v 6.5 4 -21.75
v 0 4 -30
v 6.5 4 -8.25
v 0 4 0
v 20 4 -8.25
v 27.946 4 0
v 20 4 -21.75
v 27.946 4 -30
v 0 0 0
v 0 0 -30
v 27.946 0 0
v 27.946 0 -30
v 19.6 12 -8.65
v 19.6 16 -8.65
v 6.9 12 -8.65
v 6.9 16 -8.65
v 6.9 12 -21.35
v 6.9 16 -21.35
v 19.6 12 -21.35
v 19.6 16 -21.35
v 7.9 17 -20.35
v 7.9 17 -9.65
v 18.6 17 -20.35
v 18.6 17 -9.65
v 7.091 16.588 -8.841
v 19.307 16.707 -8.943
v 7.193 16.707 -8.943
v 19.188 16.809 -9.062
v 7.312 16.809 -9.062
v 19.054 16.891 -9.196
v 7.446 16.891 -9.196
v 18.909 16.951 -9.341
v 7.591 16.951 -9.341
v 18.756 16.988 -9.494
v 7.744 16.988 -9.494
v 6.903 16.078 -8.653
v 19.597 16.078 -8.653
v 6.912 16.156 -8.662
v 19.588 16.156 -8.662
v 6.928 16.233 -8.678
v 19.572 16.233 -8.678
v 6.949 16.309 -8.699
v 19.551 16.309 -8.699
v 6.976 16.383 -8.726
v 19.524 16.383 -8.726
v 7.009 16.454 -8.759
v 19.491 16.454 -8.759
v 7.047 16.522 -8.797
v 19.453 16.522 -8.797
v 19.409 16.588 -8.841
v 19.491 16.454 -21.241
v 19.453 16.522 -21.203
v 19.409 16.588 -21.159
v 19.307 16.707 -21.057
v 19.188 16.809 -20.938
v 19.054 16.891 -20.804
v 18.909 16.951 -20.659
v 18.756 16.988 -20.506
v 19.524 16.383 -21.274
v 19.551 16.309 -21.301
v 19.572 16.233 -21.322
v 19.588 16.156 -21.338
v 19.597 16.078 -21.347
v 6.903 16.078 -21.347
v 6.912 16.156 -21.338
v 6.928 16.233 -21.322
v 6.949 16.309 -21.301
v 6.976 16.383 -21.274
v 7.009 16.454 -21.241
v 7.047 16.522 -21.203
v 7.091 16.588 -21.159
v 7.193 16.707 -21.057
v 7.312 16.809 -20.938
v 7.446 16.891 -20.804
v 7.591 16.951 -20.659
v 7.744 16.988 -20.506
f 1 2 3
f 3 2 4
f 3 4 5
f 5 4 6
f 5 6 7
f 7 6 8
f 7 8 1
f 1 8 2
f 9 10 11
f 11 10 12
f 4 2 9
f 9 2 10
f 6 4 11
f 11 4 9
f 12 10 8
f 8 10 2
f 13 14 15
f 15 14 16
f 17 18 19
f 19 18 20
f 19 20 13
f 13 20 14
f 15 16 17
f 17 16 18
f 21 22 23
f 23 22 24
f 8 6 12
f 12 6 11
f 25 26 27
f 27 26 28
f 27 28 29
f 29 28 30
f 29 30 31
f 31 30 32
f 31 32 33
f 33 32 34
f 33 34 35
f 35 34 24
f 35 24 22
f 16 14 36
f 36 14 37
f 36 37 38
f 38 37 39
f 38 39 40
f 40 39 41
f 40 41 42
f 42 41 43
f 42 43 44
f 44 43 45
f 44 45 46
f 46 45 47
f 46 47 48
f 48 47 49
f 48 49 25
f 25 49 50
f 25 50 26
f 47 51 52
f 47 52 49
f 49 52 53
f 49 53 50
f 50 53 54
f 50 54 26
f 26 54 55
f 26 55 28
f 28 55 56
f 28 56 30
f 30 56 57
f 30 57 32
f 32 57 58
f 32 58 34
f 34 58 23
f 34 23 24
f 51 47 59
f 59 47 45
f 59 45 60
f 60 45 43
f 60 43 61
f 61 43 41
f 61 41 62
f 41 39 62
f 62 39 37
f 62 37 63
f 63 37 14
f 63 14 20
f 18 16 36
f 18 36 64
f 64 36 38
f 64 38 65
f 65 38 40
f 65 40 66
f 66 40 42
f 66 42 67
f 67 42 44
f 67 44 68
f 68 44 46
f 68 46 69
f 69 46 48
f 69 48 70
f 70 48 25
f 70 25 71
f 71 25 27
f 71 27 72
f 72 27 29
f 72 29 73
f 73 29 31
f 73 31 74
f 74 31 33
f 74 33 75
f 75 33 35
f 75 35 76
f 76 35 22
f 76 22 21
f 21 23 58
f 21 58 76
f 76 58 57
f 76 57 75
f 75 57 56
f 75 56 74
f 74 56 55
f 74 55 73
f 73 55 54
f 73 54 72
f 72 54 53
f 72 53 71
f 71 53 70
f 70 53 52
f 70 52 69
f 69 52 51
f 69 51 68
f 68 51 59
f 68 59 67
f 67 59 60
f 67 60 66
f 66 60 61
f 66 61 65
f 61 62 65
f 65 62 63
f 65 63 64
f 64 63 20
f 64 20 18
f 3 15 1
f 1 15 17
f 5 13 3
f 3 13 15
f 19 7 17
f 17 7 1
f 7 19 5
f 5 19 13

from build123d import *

# Parameters (mm, degrees)
SKETCH1_W                = 240
SKETCH1_H                = 30
SKETCH1_W_2              = 12.7
SKETCH1_H_2              = 12.7
BOSS_EXTRUDE1_DEPTH      = 4
SKETCH2_W                = 12.7
SKETCH2_H                = 12.7
BOSS_EXTRUDE2_DEPTH      = 13
BOSS_EXTRUDE2_DEPTH_BACK = 4
SKETCH3_W                = 217.126937851
SKETCH3_H                = 95.437848018
CUT_EXTRUDE1_DEPTH       = 14
CUT_EXTRUDE1_DEPTH_BACK  = 5
FILLET1_R                = 1
CHAMFER1_SIZE            = 0.4
CHAMFER1_SIZE2           = 8


with BuildPart() as part:
    # Sketch1 → Boss-Extrude1 (new body)
    with BuildSketch(Plane(origin=(0, 0, 0), x_dir=(1, 0, 0), z_dir=(0, 1, 0))):
        with Locations((120, 15)):
            Rectangle(SKETCH1_W, SKETCH1_H)
        with Locations((13.25, 15)):
            Rectangle(SKETCH1_W_2, SKETCH1_H_2, mode=Mode.SUBTRACT)
        with Locations((43.75, 15)):
            Rectangle(SKETCH1_W_2, SKETCH1_H_2, mode=Mode.SUBTRACT)
        with Locations((74.25, 15)):
            Rectangle(SKETCH1_W_2, SKETCH1_H_2, mode=Mode.SUBTRACT)
        with Locations((104.75, 15)):
            Rectangle(SKETCH1_W_2, SKETCH1_H_2, mode=Mode.SUBTRACT)
        with Locations((135.25, 15)):
            Rectangle(SKETCH1_W_2, SKETCH1_H_2, mode=Mode.SUBTRACT)
        with Locations((165.75, 15)):
            Rectangle(SKETCH1_W_2, SKETCH1_H_2, mode=Mode.SUBTRACT)
        with Locations((196.25, 15)):
            Rectangle(SKETCH1_W_2, SKETCH1_H_2, mode=Mode.SUBTRACT)
        with Locations((226.75, 15)):
            Rectangle(SKETCH1_W_2, SKETCH1_H_2, mode=Mode.SUBTRACT)
    extrude(amount=BOSS_EXTRUDE1_DEPTH)

    # Sketch2 → Boss-Extrude2 (add, two sides)
    with BuildSketch(Plane(origin=(0, 4, 0), x_dir=(1, 0, 0), z_dir=(0, 1, 0))) as boss_extrude2_sk:
        with Locations((13.25, 15)):
            Rectangle(SKETCH2_W, SKETCH2_H)
        with Locations((43.75, 15)):
            Rectangle(SKETCH2_W, SKETCH2_H)
        with Locations((74.25, 15)):
            Rectangle(SKETCH2_W, SKETCH2_H)
        with Locations((104.75, 15)):
            Rectangle(SKETCH2_W, SKETCH2_H)
        with Locations((135.25, 15)):
            Rectangle(SKETCH2_W, SKETCH2_H)
        with Locations((165.75, 15)):
            Rectangle(SKETCH2_W, SKETCH2_H)
        with Locations((196.25, 15)):
            Rectangle(SKETCH2_W, SKETCH2_H)
        with Locations((226.75, 15)):
            Rectangle(SKETCH2_W, SKETCH2_H)
    extrude(amount=BOSS_EXTRUDE2_DEPTH)
    extrude(boss_extrude2_sk.sketch, amount=-BOSS_EXTRUDE2_DEPTH_BACK)

    # Sketch3 → Cut-Extrude1 (cut, two sides)
    with BuildSketch(Plane(origin=(0, 4, 0), x_dir=(1, 0, 0), z_dir=(0, 1, 0))) as cut_extrude1_sk:
        with Locations((136.509114297, 10.683129124)):
            Rectangle(SKETCH3_W, SKETCH3_H)
    extrude(amount=CUT_EXTRUDE1_DEPTH, mode=Mode.SUBTRACT)
    extrude(cut_extrude1_sk.sketch, amount=-CUT_EXTRUDE1_DEPTH_BACK, mode=Mode.SUBTRACT)

    # Fillet1
    fillet1_edges = [part.edges().sort_by_distance(p)[0] for p in [
        (6.9, 17, -15),
        (13.25, 17, -8.65),
        (19.6, 17, -15),
        (13.25, 17, -21.35),
    ]]
    fillet(fillet1_edges, radius=FILLET1_R)

    # Chamfer1
    chamfer1_edges = [part.edges().sort_by_distance(p)[0] for p in [
        (6.9, 4, -15),
        (13.25, 4, -8.65),
        (19.6, 4, -15),
        (13.25, 4, -21.35),
    ]]
    chamfer1_side = [part.faces().sort_by_distance(p)[0] for p in [
        (0.409995012, 4, -15),
    ]]
    chamfer(chamfer1_edges, length=CHAMFER1_SIZE, length2=CHAMFER1_SIZE2, reference=chamfer1_side[0])


solid = part.part
